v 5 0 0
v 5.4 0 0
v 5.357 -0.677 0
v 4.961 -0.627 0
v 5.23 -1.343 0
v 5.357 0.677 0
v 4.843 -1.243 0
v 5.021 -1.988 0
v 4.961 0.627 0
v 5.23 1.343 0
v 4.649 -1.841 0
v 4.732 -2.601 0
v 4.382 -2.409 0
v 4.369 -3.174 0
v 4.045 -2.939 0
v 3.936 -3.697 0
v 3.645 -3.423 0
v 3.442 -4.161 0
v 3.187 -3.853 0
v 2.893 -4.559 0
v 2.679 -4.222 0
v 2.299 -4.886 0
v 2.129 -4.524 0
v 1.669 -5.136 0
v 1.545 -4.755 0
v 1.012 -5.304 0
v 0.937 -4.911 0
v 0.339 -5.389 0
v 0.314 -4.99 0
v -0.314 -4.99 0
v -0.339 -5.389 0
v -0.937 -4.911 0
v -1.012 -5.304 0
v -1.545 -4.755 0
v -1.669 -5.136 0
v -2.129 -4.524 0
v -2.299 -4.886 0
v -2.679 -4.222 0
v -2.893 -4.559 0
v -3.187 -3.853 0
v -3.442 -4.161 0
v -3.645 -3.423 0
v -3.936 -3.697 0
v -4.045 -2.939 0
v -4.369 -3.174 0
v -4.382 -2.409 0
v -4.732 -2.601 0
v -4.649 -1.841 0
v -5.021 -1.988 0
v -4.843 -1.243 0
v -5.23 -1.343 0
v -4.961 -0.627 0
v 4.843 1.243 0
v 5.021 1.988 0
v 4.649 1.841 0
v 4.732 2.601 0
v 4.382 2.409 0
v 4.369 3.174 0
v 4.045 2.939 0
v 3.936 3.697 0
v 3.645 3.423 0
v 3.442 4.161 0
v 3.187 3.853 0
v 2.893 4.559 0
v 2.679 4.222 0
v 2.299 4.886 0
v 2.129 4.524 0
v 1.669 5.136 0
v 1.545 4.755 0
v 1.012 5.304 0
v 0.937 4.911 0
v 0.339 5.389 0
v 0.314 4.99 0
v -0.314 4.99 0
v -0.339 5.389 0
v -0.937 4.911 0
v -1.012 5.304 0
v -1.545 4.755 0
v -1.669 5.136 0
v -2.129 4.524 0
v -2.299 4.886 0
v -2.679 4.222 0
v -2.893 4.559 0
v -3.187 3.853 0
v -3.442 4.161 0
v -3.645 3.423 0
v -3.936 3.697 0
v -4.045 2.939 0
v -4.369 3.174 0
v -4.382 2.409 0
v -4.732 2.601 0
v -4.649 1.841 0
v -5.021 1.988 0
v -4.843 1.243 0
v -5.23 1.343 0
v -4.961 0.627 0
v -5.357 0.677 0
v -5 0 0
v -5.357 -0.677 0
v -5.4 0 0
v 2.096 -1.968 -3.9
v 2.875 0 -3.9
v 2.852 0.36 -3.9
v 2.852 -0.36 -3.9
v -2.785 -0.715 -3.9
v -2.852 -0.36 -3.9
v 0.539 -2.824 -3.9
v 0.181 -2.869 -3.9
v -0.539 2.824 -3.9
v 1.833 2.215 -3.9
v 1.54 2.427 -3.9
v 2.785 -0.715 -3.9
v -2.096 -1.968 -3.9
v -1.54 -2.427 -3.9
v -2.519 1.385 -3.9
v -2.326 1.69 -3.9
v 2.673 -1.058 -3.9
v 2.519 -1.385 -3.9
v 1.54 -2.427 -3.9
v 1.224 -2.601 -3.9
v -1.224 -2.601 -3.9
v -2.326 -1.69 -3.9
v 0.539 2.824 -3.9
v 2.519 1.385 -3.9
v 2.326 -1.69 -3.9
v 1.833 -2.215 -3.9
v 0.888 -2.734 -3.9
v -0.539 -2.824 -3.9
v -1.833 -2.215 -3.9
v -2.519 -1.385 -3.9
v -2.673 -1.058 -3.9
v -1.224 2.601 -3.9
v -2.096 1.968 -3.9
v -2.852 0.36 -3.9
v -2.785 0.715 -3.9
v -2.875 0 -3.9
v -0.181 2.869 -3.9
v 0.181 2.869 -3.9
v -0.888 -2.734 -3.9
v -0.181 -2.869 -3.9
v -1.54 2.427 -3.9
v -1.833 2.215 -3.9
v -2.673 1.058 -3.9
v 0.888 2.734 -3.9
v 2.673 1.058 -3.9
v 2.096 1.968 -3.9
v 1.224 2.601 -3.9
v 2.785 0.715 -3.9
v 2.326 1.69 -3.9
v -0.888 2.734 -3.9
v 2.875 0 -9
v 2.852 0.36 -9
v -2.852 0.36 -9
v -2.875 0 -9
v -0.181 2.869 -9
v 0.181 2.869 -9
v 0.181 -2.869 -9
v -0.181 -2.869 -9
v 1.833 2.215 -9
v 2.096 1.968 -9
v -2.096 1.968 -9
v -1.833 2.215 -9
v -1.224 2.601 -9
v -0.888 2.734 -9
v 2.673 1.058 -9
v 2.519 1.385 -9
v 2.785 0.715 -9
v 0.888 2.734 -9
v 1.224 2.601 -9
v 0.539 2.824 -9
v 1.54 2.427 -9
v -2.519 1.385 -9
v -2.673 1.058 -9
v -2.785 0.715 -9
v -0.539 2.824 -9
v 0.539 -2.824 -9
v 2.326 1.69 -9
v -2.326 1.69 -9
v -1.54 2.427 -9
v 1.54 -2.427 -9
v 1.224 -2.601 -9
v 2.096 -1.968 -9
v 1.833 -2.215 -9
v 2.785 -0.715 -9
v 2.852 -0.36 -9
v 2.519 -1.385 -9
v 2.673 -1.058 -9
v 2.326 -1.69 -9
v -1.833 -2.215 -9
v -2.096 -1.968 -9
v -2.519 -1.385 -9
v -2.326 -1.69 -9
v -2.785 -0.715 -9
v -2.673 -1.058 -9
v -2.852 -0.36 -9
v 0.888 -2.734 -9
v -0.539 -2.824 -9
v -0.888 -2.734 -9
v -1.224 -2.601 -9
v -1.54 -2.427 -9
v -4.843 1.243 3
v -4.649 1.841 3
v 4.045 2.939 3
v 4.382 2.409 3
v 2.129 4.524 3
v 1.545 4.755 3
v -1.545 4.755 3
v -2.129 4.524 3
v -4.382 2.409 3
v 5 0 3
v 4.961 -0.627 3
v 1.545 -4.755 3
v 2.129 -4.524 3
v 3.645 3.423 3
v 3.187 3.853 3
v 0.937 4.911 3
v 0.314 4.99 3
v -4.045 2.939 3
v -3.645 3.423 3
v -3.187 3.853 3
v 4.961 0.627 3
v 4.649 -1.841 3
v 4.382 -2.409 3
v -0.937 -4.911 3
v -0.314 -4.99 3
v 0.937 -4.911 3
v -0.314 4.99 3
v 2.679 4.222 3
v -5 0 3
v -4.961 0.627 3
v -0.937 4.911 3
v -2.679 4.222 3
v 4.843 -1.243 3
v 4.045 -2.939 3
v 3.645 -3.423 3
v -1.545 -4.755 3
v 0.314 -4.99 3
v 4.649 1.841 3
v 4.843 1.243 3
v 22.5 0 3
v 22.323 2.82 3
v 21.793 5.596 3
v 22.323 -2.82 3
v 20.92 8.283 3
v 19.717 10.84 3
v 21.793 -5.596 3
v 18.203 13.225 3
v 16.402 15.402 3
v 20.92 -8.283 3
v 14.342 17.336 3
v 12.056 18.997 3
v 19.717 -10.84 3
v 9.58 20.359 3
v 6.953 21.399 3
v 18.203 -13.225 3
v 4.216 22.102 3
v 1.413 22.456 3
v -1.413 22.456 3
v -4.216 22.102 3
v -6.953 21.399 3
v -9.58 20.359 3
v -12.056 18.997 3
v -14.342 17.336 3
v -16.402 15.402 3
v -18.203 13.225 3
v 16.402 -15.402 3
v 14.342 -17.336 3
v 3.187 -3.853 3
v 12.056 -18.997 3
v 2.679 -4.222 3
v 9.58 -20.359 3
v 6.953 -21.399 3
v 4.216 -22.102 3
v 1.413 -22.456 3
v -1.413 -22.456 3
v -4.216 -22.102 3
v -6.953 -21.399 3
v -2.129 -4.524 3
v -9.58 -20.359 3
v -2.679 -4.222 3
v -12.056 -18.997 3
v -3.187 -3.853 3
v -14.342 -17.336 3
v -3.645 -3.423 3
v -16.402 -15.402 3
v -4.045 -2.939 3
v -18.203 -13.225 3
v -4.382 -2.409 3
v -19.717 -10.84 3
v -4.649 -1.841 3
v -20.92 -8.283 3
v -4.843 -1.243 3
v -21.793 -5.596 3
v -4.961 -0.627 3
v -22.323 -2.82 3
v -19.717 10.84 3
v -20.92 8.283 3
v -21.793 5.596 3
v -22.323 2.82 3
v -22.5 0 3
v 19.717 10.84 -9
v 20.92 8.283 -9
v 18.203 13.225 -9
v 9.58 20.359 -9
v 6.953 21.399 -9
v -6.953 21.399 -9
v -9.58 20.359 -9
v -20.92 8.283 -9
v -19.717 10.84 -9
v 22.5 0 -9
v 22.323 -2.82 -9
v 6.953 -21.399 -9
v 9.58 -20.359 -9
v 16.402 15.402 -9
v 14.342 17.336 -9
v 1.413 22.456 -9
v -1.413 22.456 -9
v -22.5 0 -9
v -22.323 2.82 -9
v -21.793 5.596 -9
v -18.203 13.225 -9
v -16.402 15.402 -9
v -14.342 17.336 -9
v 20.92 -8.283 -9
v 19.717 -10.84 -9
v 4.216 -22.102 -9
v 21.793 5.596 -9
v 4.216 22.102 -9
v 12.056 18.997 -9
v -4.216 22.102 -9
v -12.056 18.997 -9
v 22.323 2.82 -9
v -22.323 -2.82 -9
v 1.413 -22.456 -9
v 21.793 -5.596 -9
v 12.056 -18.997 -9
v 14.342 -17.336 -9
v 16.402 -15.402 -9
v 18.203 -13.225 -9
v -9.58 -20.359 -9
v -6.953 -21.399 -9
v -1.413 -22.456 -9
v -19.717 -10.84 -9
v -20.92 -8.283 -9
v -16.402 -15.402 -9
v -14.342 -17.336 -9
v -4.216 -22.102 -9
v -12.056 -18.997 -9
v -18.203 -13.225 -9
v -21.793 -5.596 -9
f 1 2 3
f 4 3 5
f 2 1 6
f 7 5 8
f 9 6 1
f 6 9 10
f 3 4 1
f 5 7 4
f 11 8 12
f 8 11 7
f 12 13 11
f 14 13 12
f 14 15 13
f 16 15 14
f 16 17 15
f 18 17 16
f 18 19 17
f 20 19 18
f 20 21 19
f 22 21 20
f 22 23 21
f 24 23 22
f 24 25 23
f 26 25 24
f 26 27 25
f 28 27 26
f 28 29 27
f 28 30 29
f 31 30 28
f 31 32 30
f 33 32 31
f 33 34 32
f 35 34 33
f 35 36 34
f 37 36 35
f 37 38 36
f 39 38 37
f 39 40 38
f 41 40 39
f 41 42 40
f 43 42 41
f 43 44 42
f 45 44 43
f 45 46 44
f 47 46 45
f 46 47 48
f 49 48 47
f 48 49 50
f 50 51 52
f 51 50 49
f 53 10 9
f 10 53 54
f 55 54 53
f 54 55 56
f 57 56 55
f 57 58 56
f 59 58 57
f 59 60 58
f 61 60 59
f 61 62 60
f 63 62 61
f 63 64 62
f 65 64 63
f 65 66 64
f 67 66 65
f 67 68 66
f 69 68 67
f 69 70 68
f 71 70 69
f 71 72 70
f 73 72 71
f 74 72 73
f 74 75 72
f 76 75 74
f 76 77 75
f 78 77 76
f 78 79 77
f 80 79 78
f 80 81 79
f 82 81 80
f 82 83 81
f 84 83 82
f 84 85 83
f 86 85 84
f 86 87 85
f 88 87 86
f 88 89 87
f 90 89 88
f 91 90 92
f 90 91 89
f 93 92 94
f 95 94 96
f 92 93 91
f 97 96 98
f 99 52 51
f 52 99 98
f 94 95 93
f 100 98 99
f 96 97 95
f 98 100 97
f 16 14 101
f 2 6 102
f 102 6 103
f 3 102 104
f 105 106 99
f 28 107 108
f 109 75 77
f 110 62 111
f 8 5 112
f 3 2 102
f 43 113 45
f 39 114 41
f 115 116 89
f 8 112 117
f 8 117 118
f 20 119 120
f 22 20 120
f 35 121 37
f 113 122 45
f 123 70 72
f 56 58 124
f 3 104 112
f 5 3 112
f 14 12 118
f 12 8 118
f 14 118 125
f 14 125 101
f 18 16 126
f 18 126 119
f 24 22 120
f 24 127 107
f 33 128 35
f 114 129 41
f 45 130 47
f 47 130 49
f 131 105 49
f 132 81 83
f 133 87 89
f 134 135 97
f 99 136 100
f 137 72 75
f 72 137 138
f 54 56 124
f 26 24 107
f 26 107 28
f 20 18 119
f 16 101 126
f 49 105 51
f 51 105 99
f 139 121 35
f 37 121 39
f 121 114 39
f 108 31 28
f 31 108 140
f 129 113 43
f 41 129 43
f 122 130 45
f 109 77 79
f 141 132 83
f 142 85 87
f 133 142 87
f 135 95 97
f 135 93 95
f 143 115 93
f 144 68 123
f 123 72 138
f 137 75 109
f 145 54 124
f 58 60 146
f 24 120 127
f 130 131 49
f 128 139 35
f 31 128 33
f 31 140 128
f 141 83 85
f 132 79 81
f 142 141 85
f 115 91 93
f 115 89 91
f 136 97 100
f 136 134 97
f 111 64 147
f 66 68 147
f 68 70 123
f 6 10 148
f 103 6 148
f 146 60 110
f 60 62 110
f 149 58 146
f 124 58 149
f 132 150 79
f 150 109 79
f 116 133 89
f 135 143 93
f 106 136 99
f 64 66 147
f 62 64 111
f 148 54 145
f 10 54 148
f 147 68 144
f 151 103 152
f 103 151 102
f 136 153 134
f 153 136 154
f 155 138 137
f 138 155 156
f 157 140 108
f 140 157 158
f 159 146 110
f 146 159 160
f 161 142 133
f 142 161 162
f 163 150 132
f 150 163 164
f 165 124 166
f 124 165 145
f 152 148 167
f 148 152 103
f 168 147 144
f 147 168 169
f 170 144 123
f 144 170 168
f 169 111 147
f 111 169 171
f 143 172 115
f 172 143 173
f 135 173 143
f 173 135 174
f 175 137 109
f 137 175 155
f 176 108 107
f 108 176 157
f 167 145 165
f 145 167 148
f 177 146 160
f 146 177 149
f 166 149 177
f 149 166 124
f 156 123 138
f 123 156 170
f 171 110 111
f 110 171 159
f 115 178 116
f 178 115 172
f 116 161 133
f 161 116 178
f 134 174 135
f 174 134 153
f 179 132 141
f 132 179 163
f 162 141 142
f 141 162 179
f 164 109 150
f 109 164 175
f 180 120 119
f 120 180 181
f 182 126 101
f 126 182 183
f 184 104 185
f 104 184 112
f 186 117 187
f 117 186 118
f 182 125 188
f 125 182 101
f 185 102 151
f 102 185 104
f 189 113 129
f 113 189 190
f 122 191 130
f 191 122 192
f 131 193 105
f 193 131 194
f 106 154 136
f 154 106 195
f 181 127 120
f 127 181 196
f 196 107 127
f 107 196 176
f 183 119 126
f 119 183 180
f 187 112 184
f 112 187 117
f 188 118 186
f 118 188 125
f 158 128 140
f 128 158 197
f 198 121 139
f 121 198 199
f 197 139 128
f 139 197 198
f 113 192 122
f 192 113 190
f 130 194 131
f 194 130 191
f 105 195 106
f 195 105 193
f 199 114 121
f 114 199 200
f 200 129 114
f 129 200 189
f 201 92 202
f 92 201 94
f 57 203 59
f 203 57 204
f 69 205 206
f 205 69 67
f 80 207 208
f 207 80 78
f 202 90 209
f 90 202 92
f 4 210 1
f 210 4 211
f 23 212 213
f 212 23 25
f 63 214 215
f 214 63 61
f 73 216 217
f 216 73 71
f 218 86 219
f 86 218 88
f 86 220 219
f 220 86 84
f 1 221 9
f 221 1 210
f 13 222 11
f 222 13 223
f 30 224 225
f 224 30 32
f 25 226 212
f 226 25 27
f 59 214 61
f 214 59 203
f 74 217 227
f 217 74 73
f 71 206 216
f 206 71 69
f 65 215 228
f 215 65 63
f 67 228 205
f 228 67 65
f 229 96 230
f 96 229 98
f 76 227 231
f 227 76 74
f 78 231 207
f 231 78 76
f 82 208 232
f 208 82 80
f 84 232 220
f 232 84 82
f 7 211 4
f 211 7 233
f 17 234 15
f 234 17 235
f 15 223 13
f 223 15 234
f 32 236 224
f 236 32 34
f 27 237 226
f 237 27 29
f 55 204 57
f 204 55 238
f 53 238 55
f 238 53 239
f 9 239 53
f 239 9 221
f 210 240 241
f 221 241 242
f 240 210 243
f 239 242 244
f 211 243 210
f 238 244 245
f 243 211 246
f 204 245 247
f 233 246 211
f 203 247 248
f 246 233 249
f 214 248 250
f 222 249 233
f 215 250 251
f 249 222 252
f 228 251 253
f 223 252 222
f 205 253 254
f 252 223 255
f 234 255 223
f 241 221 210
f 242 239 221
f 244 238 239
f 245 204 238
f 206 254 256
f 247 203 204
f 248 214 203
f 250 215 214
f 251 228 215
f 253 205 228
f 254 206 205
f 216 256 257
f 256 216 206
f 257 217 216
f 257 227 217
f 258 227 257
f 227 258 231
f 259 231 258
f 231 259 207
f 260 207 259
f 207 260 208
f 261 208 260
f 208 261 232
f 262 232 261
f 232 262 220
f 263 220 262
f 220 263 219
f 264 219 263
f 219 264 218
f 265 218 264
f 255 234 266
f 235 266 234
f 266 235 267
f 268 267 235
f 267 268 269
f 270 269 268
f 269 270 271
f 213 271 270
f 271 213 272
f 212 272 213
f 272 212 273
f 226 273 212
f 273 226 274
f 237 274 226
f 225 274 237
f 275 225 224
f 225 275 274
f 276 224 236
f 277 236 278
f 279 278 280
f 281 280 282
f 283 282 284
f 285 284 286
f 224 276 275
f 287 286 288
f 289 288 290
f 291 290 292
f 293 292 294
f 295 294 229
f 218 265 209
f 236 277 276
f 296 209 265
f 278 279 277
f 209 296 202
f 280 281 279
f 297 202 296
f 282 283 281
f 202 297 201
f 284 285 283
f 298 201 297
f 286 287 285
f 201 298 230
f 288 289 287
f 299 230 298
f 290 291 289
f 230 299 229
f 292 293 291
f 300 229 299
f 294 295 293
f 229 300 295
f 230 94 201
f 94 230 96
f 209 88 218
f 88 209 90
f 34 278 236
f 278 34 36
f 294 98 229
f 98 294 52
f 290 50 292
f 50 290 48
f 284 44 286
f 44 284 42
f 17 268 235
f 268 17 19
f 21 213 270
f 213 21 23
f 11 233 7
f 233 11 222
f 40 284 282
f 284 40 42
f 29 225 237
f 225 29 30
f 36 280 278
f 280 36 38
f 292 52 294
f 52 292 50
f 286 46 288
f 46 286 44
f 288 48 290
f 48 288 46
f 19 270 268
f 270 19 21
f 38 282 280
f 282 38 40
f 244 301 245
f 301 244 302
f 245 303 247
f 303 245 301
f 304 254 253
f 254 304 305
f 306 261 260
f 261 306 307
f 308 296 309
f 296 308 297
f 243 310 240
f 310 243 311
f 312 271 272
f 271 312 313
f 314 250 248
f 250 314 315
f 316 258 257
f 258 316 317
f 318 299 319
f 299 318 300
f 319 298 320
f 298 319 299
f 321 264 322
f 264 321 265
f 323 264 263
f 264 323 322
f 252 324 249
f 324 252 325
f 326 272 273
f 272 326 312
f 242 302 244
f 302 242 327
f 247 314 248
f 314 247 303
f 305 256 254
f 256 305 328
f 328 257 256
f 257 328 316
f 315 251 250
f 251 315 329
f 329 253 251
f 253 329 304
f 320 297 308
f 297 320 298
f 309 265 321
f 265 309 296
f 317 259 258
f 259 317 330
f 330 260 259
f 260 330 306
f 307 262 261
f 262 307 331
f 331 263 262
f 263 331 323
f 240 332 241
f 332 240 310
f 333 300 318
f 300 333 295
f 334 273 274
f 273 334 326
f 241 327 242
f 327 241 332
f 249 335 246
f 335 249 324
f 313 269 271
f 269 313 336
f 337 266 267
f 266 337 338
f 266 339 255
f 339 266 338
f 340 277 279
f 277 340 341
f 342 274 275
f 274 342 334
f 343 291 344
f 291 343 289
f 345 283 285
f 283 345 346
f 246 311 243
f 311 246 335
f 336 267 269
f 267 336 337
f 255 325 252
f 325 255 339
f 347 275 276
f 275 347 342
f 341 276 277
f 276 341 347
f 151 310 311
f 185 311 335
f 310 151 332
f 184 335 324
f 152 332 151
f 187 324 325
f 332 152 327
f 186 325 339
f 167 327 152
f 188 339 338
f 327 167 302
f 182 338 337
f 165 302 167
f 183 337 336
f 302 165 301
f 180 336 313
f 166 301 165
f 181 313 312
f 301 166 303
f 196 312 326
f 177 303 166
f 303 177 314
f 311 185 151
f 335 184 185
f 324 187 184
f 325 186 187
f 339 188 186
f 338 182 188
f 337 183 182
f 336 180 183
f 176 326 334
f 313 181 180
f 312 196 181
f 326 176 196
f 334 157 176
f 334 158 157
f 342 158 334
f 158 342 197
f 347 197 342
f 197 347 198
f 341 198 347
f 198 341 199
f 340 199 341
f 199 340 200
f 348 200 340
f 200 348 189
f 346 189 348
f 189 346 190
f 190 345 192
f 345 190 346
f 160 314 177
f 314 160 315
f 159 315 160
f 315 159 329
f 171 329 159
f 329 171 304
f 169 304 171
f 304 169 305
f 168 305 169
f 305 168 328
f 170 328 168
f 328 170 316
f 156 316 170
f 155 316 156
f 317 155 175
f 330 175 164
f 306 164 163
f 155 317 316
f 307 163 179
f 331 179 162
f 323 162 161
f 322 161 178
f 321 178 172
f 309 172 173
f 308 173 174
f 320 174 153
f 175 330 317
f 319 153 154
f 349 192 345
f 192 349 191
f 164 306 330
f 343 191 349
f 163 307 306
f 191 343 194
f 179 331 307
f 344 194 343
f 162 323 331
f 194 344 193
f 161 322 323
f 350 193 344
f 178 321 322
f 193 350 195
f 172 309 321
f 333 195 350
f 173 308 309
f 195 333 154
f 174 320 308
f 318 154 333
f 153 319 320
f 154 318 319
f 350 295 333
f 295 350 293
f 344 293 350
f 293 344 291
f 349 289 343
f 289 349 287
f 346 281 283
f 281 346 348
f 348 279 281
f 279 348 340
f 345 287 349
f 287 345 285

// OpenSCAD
$fn = 50;


difference() {
	union() {
		translate(v = [0, 0, -9.0000000000]) {
			cylinder(h = 12, r = 22.5000000000);
		}
	}
	union() {
		translate(v = [0, 0, 0]) {
			rotate(a = [0, 0, 0]) {
				difference() {
					union() {
						translate(v = [0, 0, -12.0000000000]) {
							cylinder(h = 12, r = 2.6000000000);
						}
						translate(v = [0, 0, -3.9000000000]) {
							cylinder(h = 3.9000000000, r1 = 2.8750000000, r2 = 5.4000000000);
						}
						translate(v = [0, 0, -12.0000000000]) {
							cylinder(h = 12, r = 2.8750000000);
						}
						translate(v = [0, 0, -12.0000000000]) {
							cylinder(h = 12, r = 2.6000000000);
						}
					}
					union();
				}
			}
		}
		#cylinder(h = 3, r = 5.0000000000);
	}
}
